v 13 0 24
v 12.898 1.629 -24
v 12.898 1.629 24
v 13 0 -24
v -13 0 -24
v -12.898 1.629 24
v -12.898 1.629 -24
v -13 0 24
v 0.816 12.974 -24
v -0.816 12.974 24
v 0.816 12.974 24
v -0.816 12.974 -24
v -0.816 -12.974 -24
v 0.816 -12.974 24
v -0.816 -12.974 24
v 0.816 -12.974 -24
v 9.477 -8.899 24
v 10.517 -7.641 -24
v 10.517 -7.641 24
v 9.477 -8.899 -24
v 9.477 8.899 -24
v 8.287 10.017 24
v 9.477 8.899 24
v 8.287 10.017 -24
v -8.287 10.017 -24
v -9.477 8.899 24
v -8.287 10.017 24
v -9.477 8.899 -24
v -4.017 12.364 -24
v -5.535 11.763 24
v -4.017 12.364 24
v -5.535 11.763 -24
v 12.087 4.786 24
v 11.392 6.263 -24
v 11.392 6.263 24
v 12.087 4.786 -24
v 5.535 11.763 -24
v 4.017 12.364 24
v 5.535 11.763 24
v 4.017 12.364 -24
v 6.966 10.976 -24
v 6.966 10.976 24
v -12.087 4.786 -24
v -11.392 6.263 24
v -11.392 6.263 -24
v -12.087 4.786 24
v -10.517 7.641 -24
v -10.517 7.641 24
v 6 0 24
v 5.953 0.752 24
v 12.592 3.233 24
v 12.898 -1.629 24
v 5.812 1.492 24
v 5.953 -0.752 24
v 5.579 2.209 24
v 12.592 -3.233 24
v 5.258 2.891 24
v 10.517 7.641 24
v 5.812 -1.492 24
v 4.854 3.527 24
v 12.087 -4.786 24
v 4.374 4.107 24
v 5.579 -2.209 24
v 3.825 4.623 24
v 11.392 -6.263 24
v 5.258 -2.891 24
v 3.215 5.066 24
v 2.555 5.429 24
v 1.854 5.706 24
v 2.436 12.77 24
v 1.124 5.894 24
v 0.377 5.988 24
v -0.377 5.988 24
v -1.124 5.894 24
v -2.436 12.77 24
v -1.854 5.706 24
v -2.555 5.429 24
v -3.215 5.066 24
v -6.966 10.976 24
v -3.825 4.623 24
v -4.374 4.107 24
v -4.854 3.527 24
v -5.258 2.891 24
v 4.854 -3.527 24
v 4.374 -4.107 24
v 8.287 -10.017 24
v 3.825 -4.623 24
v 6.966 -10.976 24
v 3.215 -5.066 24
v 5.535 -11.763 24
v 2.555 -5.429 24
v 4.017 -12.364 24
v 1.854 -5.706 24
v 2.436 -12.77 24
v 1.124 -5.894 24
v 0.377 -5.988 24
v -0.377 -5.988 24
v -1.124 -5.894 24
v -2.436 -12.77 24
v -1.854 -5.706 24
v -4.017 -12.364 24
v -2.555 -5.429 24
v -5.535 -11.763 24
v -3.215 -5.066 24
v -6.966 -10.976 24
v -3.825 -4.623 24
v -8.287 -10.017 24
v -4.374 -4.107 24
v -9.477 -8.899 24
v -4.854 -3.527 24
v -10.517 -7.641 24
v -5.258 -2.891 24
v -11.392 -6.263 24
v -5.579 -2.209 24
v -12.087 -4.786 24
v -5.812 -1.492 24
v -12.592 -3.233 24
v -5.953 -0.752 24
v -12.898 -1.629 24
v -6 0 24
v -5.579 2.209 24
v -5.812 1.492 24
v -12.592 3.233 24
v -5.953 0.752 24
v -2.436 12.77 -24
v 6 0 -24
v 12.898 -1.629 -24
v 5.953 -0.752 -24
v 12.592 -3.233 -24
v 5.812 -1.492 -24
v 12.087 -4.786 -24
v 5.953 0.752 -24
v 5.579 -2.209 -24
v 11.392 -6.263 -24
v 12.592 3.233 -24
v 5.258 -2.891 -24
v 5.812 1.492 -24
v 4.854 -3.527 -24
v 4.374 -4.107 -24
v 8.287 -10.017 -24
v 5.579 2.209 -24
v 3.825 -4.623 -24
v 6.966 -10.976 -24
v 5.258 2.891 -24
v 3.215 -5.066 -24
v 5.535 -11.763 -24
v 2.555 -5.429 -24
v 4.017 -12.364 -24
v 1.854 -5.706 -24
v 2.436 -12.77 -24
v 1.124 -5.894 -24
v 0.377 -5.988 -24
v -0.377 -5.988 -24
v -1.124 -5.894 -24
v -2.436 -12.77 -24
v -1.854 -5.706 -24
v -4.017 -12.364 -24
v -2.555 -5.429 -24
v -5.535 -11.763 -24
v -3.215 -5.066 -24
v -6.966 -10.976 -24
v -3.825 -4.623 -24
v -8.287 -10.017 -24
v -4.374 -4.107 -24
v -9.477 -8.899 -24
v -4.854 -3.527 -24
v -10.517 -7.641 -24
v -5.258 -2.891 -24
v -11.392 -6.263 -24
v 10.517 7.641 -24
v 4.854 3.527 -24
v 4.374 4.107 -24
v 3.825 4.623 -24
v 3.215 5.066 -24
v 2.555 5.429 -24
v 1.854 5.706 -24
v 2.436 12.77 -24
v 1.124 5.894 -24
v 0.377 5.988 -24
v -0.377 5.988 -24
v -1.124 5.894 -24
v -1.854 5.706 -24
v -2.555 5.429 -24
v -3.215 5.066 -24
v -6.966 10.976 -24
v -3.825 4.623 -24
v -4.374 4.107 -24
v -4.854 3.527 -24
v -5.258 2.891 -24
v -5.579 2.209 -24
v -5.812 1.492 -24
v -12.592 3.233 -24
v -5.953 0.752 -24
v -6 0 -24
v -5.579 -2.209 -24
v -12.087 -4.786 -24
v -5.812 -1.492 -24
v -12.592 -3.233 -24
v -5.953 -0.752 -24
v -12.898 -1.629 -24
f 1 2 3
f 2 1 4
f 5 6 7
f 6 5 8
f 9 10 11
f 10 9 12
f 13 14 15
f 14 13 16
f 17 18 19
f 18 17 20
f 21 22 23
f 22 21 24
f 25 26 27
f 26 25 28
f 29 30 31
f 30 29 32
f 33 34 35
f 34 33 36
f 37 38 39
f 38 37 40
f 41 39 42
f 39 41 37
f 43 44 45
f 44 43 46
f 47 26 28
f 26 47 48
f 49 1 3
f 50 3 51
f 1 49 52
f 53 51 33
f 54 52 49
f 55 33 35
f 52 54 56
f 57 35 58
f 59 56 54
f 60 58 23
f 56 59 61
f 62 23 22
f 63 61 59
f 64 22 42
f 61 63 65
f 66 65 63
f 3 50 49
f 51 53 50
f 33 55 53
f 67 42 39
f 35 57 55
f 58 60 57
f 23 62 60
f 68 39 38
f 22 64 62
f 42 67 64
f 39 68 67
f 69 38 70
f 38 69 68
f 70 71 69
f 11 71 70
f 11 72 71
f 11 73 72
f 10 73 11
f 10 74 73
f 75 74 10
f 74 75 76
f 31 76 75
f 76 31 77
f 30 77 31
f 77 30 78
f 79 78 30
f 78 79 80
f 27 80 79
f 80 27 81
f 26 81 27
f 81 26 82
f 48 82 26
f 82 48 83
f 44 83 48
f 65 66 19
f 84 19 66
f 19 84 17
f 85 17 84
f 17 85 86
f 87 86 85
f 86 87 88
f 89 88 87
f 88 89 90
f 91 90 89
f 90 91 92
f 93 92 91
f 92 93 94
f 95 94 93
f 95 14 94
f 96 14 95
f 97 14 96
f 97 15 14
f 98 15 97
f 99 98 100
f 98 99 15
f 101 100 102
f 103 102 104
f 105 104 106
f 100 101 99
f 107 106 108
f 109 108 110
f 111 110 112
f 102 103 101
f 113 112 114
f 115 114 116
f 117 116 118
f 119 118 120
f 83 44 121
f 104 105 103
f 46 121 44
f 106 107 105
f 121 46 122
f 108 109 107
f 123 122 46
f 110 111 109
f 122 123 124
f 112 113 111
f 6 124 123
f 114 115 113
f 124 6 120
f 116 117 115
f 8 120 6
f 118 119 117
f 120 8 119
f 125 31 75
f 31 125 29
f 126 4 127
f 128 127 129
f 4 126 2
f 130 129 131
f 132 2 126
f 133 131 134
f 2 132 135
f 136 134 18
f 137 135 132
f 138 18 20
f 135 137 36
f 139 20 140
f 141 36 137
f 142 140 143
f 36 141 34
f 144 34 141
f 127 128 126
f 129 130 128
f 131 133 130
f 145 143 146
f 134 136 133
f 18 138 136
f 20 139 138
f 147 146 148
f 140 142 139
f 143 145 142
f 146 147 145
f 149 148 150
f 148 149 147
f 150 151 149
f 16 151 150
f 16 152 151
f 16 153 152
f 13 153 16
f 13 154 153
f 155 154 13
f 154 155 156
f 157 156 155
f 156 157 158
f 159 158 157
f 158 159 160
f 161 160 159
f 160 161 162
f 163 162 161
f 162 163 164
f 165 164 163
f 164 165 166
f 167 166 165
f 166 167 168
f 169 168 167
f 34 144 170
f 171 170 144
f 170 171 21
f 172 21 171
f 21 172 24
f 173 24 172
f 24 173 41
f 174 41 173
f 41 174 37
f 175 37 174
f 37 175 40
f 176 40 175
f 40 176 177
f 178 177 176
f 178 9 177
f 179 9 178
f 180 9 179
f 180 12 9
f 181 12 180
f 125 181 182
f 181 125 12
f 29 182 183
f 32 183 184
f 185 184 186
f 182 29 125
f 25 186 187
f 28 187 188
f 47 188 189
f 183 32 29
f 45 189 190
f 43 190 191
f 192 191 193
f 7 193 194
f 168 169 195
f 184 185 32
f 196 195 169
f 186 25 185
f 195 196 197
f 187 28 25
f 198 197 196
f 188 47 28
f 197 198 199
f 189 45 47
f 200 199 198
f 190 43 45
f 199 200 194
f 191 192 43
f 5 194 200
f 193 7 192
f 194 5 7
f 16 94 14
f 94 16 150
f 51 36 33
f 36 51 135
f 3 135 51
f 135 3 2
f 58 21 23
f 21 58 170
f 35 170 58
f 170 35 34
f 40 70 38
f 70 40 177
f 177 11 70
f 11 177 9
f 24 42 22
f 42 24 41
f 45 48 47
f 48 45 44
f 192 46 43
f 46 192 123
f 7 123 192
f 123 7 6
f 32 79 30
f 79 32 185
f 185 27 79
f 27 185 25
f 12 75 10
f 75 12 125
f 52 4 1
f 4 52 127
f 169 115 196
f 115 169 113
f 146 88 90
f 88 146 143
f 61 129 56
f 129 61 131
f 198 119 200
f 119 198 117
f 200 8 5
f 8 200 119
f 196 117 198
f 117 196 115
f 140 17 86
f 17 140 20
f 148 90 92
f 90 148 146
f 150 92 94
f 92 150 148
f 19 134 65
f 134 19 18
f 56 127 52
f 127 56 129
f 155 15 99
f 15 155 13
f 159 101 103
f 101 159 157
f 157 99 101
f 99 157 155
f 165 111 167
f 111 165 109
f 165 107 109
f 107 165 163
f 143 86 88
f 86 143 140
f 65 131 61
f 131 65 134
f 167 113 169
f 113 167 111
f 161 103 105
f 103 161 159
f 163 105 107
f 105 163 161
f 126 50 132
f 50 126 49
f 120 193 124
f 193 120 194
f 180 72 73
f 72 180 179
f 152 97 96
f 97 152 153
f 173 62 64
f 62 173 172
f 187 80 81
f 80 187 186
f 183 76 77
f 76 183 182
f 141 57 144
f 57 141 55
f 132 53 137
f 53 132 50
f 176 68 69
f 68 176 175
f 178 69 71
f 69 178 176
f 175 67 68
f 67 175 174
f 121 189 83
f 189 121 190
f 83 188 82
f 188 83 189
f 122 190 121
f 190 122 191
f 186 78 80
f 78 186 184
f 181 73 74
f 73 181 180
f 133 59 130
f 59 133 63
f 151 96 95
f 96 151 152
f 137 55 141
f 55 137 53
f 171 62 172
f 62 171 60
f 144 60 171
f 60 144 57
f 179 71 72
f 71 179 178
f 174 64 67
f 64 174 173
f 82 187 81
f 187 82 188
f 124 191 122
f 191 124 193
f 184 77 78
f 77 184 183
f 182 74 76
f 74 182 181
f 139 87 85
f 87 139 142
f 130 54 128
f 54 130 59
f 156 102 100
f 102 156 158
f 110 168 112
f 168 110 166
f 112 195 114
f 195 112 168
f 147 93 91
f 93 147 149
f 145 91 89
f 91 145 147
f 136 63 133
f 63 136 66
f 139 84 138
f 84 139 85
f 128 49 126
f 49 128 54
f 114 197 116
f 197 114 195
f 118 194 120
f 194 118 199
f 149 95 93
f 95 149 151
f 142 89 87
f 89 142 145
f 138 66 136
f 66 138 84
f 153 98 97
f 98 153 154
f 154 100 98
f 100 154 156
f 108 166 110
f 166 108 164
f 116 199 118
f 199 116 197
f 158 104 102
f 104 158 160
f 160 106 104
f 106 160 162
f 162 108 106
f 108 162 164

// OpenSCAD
$fn = 50;


difference() {
	union() {
		translate(v = [0, 0, -24.0000000000]) {
			cylinder(h = 48, r = 13.0000000000);
		}
	}
	union() {
		translate(v = [0, 0, -100.0000000000]) {
			cylinder(h = 200, r = 6);
		}
	}
}
